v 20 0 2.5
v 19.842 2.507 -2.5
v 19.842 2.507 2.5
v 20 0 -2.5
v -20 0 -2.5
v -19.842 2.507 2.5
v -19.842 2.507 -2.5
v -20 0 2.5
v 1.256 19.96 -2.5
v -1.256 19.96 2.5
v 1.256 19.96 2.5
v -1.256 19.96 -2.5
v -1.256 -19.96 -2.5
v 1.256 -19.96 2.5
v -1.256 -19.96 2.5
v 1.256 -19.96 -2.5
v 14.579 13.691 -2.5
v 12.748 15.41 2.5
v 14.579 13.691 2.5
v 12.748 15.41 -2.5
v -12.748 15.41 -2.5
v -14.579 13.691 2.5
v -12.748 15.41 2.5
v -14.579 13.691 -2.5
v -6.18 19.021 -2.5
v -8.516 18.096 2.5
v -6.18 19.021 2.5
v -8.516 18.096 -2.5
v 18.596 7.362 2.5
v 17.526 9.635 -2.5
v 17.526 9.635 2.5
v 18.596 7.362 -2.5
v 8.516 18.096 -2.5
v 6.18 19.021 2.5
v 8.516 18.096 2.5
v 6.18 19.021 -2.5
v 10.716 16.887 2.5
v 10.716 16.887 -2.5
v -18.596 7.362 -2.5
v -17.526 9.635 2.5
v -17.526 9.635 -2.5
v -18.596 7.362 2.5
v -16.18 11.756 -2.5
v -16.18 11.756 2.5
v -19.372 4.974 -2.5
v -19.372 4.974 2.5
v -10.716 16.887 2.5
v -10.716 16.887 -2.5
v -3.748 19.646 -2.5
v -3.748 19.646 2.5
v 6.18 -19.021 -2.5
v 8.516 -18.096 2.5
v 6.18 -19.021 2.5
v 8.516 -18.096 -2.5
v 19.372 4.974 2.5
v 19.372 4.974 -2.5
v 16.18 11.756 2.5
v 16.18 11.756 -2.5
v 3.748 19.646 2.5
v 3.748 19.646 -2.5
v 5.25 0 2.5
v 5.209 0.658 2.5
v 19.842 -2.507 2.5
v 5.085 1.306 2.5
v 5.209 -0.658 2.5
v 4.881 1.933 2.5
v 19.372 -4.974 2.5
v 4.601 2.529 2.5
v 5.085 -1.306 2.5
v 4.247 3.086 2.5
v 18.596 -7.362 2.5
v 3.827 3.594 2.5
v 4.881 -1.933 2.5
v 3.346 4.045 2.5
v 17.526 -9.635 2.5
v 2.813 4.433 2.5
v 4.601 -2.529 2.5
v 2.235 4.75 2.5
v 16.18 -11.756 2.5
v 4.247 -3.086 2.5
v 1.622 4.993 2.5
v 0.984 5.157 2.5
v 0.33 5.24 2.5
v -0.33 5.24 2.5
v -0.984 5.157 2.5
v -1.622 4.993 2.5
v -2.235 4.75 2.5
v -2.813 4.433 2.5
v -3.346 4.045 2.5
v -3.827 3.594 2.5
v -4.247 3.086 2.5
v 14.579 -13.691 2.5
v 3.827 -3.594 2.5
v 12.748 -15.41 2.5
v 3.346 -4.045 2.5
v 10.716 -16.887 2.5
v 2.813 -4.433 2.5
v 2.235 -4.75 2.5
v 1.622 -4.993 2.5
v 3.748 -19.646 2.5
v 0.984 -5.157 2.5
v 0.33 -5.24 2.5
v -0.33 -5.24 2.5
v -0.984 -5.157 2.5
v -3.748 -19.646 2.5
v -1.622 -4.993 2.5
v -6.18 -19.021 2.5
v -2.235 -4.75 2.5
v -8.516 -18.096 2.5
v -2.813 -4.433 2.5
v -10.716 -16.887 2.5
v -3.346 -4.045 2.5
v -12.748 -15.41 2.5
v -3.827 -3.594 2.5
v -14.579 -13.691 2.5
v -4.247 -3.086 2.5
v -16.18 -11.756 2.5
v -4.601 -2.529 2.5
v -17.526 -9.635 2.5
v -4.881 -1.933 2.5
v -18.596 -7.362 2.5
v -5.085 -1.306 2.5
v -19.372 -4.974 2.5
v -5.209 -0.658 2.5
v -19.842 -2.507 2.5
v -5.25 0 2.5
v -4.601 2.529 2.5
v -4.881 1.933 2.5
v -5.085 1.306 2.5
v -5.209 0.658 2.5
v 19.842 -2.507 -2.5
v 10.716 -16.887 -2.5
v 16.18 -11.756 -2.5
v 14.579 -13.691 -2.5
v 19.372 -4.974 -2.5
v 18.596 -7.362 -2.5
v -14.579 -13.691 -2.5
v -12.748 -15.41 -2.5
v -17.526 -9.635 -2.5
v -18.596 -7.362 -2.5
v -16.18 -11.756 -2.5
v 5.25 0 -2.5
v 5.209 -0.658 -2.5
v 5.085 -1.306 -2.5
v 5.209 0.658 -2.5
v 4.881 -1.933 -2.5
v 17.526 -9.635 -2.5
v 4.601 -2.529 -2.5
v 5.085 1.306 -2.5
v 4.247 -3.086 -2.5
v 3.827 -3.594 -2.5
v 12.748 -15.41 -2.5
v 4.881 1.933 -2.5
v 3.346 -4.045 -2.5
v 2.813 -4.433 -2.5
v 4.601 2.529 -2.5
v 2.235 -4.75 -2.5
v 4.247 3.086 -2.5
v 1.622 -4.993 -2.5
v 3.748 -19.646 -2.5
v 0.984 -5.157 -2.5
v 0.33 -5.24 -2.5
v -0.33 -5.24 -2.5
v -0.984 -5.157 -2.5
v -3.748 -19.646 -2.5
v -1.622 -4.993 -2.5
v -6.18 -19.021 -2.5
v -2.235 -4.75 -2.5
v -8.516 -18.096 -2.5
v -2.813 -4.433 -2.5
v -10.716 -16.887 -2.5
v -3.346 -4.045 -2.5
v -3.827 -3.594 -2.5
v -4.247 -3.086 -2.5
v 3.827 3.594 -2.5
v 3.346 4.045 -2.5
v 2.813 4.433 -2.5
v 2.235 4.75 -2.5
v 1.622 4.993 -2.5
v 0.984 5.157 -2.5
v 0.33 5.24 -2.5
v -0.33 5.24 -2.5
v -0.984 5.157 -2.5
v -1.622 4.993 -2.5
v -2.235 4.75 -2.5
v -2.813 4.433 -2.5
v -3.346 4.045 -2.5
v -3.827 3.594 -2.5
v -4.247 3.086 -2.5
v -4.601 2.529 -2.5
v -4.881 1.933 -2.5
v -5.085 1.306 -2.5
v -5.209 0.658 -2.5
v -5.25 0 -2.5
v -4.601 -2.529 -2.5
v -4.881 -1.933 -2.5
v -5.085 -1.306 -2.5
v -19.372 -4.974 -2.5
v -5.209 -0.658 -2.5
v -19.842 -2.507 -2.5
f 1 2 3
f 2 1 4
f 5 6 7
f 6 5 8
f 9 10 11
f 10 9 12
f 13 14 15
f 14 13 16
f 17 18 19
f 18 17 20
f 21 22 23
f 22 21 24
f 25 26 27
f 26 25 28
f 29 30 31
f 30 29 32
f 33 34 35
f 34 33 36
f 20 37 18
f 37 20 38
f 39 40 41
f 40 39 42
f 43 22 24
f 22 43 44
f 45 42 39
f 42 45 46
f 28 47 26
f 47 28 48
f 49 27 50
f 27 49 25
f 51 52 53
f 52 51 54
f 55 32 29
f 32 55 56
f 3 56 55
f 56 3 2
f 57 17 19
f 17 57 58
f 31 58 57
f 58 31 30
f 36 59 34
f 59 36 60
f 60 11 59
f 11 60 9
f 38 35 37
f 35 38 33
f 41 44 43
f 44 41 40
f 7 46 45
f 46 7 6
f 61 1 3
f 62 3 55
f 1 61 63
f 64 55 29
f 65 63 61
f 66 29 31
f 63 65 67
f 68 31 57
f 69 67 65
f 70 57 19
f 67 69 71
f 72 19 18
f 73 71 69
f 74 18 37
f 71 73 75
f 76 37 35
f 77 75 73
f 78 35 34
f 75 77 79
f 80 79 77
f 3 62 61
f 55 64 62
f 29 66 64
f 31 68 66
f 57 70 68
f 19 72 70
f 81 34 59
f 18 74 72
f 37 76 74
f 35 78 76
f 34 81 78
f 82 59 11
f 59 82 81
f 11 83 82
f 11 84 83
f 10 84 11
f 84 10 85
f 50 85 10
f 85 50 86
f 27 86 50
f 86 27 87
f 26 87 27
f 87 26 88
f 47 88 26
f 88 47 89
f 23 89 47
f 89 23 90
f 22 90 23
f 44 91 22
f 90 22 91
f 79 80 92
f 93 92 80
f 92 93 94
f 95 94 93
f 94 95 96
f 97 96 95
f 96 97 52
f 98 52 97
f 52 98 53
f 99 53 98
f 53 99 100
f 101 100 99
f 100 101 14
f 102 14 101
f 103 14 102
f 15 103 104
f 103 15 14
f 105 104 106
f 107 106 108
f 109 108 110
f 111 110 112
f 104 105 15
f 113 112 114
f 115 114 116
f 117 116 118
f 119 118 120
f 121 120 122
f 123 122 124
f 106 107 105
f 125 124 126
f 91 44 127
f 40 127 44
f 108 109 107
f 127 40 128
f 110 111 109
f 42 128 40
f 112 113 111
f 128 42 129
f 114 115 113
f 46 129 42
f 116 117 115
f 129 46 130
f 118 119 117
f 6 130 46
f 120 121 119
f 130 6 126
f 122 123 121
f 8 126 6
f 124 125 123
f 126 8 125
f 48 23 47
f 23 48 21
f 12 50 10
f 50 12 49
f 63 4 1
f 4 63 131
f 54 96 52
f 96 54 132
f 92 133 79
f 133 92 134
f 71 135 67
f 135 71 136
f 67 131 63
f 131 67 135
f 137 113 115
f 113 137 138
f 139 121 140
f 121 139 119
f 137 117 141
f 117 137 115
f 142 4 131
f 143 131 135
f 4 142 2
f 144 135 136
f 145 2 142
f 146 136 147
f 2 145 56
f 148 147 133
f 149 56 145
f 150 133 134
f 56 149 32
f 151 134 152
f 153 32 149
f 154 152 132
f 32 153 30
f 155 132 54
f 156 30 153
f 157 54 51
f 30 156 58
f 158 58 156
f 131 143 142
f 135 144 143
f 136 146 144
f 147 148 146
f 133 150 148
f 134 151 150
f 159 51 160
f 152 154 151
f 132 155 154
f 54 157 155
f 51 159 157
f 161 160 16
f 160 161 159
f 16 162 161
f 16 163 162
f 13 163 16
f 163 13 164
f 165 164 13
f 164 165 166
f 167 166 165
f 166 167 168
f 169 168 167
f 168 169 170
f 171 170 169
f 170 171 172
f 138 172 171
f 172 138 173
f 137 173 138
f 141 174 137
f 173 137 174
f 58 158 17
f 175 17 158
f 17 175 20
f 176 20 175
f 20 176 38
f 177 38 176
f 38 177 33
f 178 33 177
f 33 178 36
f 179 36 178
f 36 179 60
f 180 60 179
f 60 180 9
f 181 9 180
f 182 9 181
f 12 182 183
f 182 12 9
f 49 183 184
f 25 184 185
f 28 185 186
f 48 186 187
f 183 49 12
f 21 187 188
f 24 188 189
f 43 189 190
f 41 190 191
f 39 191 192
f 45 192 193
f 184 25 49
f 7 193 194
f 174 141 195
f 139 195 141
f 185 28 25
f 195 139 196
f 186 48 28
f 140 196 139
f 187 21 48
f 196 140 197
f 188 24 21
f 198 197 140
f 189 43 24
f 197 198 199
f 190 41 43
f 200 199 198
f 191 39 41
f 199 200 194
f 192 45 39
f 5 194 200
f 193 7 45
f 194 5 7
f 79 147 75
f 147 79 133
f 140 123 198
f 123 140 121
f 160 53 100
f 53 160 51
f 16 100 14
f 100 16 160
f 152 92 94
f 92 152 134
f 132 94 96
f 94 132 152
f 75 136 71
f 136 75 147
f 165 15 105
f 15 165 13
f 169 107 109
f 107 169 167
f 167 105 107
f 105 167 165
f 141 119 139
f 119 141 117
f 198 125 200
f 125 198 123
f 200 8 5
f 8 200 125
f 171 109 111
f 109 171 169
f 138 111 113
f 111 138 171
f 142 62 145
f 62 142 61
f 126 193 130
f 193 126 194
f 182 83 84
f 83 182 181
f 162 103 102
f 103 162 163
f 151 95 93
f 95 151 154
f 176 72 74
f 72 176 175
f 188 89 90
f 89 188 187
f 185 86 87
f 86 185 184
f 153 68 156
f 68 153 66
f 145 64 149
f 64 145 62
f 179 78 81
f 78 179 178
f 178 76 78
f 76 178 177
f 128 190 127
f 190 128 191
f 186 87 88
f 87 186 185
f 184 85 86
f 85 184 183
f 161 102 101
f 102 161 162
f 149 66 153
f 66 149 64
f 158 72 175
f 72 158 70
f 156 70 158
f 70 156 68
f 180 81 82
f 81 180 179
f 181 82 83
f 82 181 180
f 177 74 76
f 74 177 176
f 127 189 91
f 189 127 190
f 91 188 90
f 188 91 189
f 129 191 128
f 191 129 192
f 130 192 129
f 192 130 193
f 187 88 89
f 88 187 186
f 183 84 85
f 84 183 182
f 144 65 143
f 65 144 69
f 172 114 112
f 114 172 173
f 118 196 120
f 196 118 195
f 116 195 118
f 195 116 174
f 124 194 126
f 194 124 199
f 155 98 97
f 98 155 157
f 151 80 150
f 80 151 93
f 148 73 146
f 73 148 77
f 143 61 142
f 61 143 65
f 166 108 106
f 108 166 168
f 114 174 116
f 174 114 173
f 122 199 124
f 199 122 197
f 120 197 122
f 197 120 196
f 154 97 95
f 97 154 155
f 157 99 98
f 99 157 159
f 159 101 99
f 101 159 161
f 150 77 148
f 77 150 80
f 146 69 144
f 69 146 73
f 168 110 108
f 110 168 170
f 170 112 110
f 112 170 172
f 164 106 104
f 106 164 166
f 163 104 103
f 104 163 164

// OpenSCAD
$fn = 50;


difference() {
	union() {
		translate(v = [0, 0, -2.5000000000]) {
			cylinder(h = 5, r = 20.0000000000);
		}
	}
	union() {
		translate(v = [0, 0, -100.0000000000]) {
			cylinder(h = 200, r = 5.2500000000);
		}
	}
}
